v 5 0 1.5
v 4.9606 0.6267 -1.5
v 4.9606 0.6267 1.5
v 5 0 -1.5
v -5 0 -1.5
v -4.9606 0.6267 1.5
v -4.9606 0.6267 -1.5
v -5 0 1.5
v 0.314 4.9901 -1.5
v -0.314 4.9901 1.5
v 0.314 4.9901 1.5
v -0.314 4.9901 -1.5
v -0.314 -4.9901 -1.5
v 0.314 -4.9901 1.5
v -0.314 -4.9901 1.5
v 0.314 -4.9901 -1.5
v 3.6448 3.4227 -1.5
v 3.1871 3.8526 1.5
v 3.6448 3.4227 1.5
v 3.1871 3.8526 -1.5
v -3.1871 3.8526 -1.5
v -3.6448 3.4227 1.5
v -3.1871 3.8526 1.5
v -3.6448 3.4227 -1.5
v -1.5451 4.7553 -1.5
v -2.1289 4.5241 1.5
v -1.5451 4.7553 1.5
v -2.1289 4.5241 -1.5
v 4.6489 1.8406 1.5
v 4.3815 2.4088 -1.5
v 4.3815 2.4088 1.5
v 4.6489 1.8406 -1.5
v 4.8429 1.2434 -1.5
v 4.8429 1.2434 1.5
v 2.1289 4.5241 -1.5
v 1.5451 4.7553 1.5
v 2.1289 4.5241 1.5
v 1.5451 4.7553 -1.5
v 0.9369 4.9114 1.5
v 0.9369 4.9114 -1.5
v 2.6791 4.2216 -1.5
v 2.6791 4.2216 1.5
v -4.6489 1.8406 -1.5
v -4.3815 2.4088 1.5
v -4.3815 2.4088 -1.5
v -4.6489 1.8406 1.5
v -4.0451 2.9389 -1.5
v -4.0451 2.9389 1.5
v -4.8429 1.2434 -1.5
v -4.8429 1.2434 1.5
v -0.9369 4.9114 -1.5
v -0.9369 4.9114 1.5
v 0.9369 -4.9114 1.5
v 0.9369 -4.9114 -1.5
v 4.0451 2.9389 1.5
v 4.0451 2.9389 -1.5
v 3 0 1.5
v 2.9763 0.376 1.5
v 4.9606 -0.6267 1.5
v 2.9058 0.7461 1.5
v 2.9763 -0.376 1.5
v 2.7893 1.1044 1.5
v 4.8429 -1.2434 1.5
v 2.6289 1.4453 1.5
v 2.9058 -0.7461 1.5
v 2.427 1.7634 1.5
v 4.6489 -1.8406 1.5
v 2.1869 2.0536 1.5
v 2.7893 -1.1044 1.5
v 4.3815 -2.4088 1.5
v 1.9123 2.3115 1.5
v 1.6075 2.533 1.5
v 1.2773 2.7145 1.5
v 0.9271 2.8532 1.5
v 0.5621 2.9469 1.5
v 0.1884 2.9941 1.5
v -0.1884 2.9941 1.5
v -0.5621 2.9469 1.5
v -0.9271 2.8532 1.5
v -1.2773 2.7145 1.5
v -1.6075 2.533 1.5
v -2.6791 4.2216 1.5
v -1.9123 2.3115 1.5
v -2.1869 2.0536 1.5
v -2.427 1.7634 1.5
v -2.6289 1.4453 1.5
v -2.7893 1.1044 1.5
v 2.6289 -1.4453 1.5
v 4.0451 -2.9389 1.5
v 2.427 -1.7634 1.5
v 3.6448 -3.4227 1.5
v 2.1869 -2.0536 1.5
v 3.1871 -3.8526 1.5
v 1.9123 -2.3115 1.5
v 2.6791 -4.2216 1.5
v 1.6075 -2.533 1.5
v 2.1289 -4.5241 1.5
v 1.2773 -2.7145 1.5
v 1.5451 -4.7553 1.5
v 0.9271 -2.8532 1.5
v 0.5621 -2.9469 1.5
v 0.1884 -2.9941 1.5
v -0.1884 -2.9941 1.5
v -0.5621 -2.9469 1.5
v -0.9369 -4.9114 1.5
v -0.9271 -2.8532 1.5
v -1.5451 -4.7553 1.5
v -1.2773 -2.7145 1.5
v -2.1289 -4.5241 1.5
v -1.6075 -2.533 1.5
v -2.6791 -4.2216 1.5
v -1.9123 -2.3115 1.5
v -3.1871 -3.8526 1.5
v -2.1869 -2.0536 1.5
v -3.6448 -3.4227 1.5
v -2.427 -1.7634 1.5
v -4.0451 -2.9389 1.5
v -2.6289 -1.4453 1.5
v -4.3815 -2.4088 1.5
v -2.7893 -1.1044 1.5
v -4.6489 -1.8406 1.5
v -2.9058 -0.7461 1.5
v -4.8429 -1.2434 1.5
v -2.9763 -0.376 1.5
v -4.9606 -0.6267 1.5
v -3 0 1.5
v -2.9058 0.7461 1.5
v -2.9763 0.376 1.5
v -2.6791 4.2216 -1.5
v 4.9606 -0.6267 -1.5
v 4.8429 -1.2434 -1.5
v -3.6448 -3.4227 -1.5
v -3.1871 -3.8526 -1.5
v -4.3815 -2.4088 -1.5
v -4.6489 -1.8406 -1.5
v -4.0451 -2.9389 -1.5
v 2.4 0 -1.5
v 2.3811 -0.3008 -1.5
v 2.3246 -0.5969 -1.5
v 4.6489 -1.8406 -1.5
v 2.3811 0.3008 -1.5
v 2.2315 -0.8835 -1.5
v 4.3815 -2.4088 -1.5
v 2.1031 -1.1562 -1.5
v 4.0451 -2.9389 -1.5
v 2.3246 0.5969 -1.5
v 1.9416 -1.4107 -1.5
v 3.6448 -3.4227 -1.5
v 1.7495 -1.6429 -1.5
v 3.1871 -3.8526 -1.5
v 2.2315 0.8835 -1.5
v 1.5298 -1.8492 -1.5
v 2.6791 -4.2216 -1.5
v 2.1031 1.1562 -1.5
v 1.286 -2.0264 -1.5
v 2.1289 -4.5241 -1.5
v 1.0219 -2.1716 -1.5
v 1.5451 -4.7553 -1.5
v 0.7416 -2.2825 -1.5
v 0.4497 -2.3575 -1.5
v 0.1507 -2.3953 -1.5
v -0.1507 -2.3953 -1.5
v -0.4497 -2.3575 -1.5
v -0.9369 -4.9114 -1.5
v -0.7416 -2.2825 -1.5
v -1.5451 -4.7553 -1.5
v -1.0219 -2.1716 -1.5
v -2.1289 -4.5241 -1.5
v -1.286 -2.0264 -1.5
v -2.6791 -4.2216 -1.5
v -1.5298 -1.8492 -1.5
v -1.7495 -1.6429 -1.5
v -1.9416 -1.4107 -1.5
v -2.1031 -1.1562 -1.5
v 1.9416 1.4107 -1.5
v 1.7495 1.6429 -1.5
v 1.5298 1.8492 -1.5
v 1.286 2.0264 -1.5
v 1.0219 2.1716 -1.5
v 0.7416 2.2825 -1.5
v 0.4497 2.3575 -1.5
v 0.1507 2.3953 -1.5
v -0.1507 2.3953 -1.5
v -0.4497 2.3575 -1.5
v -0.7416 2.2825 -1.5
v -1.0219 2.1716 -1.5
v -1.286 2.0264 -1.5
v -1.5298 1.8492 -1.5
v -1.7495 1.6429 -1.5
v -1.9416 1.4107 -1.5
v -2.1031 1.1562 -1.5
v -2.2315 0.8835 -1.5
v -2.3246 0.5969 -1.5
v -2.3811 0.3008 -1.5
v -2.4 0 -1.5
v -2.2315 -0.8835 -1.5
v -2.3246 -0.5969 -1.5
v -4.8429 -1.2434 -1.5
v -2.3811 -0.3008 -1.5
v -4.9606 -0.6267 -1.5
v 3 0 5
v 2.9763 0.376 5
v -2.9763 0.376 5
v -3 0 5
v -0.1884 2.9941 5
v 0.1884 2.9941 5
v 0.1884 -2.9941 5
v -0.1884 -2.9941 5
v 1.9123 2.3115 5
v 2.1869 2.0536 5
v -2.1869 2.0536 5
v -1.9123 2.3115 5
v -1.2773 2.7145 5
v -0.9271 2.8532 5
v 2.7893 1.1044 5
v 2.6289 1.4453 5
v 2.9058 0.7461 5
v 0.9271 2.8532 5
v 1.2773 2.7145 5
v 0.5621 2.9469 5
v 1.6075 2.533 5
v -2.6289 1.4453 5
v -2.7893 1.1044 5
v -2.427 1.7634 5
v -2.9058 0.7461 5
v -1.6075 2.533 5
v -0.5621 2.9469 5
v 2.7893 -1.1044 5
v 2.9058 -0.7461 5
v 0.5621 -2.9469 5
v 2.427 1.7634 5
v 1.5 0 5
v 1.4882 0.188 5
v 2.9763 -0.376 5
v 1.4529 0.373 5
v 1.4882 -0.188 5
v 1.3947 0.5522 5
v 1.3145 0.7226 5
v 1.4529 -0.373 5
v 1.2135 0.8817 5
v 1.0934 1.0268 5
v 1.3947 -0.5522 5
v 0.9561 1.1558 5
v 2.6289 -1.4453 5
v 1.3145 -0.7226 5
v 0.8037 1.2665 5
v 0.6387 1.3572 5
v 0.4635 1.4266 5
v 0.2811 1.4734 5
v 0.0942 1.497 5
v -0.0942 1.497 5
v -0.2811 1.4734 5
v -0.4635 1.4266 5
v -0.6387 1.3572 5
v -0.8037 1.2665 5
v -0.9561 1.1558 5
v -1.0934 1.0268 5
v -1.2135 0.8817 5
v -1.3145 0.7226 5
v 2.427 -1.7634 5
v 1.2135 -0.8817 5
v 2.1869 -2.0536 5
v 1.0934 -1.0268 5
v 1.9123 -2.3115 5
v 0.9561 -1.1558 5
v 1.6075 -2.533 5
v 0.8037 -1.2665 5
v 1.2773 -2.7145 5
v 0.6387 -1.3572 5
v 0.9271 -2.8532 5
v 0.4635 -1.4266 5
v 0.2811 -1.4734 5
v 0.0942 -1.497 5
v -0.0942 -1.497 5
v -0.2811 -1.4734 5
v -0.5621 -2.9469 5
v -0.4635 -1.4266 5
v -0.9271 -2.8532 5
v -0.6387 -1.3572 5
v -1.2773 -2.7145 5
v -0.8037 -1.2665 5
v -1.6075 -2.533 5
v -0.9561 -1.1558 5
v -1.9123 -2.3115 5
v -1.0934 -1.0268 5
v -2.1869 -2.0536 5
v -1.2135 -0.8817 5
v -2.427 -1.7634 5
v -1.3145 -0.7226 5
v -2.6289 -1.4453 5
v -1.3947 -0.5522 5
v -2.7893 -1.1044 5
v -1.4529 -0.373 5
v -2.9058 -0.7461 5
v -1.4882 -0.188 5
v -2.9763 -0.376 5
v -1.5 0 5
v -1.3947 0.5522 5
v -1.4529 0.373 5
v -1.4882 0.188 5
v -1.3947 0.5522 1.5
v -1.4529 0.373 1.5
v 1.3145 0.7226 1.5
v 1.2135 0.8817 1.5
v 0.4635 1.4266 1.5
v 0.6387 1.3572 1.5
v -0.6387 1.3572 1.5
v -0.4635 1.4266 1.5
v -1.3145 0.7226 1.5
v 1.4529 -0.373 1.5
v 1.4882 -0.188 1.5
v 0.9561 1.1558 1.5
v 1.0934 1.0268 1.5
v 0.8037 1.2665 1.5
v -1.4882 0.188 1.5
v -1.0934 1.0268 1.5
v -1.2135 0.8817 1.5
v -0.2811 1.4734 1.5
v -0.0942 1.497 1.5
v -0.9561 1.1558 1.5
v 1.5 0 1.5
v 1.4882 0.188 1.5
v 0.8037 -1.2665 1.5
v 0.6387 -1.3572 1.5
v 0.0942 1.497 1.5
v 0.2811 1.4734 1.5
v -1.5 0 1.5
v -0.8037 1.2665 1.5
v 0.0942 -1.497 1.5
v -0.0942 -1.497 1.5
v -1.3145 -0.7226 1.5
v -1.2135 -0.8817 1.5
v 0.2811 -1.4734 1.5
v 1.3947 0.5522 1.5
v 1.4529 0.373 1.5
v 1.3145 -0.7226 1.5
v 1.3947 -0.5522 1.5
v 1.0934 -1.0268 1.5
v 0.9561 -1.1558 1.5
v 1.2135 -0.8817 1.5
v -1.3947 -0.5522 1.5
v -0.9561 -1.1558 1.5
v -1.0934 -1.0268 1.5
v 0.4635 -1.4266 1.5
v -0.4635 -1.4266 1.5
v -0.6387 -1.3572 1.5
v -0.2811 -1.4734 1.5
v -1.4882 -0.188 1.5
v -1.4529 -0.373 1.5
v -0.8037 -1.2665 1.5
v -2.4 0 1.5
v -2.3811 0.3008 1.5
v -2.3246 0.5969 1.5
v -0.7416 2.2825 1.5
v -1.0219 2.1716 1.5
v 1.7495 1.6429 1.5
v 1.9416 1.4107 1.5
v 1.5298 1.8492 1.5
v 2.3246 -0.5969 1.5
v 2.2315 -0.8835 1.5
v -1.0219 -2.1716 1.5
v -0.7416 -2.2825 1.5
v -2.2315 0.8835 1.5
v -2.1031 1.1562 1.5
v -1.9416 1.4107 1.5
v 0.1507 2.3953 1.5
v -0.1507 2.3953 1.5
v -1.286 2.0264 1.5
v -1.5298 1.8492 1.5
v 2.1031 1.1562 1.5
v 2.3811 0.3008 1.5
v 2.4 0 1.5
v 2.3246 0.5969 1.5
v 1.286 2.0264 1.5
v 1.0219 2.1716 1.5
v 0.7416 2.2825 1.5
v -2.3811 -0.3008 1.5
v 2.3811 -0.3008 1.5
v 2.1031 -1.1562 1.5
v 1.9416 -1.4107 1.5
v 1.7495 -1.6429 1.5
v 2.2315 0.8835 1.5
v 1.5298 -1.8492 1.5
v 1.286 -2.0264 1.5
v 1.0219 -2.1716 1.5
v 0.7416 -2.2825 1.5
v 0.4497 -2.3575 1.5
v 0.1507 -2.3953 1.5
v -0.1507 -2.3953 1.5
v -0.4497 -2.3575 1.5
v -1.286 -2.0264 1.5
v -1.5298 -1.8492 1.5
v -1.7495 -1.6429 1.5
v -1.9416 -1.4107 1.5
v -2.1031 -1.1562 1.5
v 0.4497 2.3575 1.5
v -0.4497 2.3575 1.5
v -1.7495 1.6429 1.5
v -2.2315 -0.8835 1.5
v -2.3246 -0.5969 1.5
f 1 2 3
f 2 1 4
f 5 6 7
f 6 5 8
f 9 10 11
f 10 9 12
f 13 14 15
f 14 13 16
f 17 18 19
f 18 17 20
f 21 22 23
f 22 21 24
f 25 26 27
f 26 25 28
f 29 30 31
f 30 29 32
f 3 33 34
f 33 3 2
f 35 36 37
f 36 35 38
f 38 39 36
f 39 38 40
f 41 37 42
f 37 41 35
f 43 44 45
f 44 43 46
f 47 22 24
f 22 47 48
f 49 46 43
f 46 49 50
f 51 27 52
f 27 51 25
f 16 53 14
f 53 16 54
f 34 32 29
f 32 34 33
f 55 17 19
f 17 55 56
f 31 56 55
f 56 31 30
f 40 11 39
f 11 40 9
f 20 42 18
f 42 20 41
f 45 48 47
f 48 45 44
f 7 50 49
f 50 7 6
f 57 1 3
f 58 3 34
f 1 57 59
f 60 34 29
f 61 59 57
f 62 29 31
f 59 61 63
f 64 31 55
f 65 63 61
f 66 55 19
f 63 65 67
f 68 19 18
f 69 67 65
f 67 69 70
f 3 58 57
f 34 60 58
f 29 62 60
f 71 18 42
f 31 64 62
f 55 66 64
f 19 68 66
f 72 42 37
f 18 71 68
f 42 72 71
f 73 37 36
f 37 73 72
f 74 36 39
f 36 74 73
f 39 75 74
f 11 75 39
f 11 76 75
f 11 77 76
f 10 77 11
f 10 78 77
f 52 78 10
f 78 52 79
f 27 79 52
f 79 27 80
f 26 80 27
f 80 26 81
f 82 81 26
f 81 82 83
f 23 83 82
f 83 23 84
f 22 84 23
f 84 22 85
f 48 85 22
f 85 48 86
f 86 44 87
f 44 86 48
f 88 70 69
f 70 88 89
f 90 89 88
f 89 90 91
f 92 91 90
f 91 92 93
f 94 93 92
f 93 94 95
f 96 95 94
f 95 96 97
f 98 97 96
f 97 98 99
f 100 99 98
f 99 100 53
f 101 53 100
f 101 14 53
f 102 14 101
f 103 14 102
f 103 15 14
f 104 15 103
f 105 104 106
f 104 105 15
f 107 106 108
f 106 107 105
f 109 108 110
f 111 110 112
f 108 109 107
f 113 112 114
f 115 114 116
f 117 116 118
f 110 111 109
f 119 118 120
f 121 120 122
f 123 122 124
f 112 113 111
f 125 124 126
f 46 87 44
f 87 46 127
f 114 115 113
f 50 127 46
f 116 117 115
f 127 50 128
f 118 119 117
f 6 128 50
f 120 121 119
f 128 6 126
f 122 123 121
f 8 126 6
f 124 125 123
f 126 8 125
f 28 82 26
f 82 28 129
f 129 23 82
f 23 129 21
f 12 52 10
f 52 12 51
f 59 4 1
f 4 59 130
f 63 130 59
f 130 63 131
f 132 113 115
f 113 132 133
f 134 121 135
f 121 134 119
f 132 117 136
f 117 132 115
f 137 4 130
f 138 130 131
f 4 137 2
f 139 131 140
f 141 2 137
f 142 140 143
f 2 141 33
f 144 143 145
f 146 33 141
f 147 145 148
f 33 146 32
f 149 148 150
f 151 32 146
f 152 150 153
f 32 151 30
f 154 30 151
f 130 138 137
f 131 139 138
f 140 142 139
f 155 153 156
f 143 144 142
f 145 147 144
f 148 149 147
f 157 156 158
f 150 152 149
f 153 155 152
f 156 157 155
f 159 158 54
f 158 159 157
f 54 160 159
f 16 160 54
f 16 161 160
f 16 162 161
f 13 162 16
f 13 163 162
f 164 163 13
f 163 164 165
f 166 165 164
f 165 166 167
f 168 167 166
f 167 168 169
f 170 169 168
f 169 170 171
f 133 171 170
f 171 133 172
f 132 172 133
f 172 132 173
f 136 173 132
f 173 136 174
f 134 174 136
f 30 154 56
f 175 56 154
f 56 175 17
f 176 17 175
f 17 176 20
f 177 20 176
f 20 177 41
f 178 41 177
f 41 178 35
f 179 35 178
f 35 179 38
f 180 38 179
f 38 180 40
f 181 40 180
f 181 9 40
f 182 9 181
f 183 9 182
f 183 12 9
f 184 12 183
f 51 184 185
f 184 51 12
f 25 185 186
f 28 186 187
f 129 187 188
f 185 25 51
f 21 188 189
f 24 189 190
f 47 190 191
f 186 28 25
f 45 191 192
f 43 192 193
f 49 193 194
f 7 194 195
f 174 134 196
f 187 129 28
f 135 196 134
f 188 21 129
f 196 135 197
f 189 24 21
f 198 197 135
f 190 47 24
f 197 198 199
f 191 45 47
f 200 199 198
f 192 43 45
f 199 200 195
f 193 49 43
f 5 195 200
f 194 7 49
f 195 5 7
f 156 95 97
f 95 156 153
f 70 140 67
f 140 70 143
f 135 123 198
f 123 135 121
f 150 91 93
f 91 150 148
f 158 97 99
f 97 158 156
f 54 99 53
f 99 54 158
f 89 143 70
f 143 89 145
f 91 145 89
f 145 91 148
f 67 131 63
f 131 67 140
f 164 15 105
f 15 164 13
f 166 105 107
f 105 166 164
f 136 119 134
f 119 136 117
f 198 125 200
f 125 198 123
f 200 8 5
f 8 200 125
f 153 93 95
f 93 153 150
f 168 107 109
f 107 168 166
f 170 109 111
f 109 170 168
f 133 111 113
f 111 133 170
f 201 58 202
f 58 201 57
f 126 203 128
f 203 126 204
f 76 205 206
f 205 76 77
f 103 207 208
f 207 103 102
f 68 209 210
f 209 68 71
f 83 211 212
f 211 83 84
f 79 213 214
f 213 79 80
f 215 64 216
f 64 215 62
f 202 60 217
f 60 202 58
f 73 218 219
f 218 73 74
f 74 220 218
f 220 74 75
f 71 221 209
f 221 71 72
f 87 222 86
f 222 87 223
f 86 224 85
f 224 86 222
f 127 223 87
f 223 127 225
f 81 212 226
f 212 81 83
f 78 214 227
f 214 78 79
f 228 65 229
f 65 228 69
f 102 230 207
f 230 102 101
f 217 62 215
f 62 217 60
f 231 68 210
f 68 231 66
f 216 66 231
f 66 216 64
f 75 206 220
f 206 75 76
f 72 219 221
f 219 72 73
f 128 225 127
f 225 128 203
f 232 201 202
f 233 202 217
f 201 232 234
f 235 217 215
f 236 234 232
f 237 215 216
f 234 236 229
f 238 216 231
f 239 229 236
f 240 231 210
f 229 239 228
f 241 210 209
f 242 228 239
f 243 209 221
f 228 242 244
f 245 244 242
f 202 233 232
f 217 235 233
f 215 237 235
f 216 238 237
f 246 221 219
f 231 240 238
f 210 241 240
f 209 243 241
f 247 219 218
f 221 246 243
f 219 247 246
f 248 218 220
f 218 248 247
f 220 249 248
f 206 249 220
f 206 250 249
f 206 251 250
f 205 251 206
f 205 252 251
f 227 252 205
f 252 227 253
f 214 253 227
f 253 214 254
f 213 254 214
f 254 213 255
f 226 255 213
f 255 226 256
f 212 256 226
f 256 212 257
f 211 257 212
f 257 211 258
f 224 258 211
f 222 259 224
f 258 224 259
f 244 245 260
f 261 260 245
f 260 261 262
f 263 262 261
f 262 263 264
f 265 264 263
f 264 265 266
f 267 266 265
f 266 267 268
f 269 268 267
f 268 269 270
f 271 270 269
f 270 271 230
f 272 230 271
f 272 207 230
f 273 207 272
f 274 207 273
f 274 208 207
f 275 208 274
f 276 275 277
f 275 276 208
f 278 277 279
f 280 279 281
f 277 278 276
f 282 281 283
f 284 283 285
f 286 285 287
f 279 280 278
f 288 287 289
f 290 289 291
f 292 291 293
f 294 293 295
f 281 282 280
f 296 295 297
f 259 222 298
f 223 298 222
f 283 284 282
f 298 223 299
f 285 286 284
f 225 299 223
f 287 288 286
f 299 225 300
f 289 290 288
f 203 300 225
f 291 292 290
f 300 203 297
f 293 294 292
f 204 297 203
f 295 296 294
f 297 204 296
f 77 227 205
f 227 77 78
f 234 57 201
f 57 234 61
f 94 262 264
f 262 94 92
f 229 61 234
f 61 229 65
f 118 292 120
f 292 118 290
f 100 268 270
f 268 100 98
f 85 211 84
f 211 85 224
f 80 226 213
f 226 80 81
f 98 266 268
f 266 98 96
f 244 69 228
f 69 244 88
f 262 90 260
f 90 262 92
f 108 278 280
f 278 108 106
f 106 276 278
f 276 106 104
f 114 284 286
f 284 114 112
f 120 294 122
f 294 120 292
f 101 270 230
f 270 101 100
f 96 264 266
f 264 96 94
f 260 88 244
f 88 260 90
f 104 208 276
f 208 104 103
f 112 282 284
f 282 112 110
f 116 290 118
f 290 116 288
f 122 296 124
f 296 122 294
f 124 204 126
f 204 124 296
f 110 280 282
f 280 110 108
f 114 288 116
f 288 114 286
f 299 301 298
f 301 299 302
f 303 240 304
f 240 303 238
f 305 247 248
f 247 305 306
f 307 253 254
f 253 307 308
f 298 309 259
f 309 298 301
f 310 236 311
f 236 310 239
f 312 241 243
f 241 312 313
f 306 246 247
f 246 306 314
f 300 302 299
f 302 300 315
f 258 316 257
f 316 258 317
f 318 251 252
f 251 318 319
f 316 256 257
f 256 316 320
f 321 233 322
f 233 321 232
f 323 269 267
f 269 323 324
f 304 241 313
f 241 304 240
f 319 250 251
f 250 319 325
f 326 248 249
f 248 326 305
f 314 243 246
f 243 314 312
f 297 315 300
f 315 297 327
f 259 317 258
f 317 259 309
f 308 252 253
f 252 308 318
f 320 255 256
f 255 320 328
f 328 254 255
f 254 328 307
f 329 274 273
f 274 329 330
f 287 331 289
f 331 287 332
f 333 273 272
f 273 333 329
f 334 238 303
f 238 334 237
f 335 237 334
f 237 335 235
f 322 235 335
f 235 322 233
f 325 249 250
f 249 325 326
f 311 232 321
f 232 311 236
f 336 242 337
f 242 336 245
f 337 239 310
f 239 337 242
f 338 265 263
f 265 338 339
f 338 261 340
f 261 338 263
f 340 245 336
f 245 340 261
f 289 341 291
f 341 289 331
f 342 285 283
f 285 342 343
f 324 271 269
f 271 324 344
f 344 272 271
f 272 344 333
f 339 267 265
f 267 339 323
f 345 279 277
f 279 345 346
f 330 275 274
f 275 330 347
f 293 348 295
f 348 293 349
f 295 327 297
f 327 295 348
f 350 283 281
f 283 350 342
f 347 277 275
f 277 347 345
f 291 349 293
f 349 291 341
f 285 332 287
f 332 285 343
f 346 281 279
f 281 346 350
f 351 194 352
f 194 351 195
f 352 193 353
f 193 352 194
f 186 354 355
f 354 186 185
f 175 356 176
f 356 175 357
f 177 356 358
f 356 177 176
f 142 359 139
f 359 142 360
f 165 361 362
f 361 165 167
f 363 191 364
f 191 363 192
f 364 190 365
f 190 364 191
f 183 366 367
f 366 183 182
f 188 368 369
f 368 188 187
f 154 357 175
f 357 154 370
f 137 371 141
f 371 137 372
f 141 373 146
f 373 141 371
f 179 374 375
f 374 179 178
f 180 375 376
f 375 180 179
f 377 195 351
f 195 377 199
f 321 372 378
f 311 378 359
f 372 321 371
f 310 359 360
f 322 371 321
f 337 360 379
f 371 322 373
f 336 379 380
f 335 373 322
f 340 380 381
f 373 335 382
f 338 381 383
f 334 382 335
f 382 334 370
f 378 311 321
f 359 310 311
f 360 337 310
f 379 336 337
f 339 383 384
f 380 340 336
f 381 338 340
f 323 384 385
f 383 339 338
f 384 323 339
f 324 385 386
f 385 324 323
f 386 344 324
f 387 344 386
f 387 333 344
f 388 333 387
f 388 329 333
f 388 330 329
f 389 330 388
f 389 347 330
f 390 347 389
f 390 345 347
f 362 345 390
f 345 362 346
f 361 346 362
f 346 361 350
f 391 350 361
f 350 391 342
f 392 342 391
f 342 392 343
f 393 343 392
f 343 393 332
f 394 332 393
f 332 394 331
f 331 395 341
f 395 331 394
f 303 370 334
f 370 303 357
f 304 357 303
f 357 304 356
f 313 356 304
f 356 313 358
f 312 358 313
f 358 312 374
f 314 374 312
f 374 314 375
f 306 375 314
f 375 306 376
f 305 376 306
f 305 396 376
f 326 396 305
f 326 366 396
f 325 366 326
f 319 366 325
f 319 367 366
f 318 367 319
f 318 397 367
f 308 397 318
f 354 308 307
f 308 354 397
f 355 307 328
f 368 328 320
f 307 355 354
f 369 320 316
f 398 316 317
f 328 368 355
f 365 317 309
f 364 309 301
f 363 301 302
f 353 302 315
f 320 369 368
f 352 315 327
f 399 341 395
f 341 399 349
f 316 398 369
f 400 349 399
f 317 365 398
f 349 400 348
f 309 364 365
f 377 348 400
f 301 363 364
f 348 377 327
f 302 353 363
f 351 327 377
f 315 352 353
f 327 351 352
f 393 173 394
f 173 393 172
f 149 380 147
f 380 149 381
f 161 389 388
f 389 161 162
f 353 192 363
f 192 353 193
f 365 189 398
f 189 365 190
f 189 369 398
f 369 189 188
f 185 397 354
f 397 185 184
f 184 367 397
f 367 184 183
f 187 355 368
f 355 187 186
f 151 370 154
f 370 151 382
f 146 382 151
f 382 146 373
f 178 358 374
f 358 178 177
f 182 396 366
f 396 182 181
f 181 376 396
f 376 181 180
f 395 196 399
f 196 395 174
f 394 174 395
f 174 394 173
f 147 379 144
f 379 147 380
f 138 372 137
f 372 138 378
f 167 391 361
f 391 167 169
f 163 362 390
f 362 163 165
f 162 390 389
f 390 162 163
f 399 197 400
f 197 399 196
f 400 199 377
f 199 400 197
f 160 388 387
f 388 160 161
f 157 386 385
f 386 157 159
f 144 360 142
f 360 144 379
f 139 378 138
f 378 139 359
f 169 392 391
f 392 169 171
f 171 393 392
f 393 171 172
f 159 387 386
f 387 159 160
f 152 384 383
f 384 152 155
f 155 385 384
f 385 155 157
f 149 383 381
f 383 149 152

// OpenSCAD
$fn = 50;


difference() {
	union() {
		translate(v = [0, 0, -1.5000000000]) {
			rotate(a = [0, 0, 0]) {
				cylinder(h = 3, r = 5.0000000000);
			}
		}
		translate(v = [0, 0, -1.5000000000]) {
			rotate(a = [0, 0, 0]) {
				cylinder(h = 6.5000000000, r = 3.0000000000);
			}
		}
	}
	union() {
		translate(v = [0, 0, -125.0000000000]) {
			rotate(a = [0, 0, 0]) {
				cylinder(h = 250, r = 1.5000000000);
			}
		}
		#translate(v = [0, 0, 1.5000000000]) {
			rotate(a = [0, 180, 0]) {
				cylinder(h = 3, r1 = 2.4000000000, r2 = 2.4000000000);
			}
		}
		#translate(v = [0, 0, 5.0000000000]) {
			rotate(a = [0, 180, 0]) {
				cylinder(h = 6.5000000000, r = 1.5000000000);
			}
		}
	}
}
